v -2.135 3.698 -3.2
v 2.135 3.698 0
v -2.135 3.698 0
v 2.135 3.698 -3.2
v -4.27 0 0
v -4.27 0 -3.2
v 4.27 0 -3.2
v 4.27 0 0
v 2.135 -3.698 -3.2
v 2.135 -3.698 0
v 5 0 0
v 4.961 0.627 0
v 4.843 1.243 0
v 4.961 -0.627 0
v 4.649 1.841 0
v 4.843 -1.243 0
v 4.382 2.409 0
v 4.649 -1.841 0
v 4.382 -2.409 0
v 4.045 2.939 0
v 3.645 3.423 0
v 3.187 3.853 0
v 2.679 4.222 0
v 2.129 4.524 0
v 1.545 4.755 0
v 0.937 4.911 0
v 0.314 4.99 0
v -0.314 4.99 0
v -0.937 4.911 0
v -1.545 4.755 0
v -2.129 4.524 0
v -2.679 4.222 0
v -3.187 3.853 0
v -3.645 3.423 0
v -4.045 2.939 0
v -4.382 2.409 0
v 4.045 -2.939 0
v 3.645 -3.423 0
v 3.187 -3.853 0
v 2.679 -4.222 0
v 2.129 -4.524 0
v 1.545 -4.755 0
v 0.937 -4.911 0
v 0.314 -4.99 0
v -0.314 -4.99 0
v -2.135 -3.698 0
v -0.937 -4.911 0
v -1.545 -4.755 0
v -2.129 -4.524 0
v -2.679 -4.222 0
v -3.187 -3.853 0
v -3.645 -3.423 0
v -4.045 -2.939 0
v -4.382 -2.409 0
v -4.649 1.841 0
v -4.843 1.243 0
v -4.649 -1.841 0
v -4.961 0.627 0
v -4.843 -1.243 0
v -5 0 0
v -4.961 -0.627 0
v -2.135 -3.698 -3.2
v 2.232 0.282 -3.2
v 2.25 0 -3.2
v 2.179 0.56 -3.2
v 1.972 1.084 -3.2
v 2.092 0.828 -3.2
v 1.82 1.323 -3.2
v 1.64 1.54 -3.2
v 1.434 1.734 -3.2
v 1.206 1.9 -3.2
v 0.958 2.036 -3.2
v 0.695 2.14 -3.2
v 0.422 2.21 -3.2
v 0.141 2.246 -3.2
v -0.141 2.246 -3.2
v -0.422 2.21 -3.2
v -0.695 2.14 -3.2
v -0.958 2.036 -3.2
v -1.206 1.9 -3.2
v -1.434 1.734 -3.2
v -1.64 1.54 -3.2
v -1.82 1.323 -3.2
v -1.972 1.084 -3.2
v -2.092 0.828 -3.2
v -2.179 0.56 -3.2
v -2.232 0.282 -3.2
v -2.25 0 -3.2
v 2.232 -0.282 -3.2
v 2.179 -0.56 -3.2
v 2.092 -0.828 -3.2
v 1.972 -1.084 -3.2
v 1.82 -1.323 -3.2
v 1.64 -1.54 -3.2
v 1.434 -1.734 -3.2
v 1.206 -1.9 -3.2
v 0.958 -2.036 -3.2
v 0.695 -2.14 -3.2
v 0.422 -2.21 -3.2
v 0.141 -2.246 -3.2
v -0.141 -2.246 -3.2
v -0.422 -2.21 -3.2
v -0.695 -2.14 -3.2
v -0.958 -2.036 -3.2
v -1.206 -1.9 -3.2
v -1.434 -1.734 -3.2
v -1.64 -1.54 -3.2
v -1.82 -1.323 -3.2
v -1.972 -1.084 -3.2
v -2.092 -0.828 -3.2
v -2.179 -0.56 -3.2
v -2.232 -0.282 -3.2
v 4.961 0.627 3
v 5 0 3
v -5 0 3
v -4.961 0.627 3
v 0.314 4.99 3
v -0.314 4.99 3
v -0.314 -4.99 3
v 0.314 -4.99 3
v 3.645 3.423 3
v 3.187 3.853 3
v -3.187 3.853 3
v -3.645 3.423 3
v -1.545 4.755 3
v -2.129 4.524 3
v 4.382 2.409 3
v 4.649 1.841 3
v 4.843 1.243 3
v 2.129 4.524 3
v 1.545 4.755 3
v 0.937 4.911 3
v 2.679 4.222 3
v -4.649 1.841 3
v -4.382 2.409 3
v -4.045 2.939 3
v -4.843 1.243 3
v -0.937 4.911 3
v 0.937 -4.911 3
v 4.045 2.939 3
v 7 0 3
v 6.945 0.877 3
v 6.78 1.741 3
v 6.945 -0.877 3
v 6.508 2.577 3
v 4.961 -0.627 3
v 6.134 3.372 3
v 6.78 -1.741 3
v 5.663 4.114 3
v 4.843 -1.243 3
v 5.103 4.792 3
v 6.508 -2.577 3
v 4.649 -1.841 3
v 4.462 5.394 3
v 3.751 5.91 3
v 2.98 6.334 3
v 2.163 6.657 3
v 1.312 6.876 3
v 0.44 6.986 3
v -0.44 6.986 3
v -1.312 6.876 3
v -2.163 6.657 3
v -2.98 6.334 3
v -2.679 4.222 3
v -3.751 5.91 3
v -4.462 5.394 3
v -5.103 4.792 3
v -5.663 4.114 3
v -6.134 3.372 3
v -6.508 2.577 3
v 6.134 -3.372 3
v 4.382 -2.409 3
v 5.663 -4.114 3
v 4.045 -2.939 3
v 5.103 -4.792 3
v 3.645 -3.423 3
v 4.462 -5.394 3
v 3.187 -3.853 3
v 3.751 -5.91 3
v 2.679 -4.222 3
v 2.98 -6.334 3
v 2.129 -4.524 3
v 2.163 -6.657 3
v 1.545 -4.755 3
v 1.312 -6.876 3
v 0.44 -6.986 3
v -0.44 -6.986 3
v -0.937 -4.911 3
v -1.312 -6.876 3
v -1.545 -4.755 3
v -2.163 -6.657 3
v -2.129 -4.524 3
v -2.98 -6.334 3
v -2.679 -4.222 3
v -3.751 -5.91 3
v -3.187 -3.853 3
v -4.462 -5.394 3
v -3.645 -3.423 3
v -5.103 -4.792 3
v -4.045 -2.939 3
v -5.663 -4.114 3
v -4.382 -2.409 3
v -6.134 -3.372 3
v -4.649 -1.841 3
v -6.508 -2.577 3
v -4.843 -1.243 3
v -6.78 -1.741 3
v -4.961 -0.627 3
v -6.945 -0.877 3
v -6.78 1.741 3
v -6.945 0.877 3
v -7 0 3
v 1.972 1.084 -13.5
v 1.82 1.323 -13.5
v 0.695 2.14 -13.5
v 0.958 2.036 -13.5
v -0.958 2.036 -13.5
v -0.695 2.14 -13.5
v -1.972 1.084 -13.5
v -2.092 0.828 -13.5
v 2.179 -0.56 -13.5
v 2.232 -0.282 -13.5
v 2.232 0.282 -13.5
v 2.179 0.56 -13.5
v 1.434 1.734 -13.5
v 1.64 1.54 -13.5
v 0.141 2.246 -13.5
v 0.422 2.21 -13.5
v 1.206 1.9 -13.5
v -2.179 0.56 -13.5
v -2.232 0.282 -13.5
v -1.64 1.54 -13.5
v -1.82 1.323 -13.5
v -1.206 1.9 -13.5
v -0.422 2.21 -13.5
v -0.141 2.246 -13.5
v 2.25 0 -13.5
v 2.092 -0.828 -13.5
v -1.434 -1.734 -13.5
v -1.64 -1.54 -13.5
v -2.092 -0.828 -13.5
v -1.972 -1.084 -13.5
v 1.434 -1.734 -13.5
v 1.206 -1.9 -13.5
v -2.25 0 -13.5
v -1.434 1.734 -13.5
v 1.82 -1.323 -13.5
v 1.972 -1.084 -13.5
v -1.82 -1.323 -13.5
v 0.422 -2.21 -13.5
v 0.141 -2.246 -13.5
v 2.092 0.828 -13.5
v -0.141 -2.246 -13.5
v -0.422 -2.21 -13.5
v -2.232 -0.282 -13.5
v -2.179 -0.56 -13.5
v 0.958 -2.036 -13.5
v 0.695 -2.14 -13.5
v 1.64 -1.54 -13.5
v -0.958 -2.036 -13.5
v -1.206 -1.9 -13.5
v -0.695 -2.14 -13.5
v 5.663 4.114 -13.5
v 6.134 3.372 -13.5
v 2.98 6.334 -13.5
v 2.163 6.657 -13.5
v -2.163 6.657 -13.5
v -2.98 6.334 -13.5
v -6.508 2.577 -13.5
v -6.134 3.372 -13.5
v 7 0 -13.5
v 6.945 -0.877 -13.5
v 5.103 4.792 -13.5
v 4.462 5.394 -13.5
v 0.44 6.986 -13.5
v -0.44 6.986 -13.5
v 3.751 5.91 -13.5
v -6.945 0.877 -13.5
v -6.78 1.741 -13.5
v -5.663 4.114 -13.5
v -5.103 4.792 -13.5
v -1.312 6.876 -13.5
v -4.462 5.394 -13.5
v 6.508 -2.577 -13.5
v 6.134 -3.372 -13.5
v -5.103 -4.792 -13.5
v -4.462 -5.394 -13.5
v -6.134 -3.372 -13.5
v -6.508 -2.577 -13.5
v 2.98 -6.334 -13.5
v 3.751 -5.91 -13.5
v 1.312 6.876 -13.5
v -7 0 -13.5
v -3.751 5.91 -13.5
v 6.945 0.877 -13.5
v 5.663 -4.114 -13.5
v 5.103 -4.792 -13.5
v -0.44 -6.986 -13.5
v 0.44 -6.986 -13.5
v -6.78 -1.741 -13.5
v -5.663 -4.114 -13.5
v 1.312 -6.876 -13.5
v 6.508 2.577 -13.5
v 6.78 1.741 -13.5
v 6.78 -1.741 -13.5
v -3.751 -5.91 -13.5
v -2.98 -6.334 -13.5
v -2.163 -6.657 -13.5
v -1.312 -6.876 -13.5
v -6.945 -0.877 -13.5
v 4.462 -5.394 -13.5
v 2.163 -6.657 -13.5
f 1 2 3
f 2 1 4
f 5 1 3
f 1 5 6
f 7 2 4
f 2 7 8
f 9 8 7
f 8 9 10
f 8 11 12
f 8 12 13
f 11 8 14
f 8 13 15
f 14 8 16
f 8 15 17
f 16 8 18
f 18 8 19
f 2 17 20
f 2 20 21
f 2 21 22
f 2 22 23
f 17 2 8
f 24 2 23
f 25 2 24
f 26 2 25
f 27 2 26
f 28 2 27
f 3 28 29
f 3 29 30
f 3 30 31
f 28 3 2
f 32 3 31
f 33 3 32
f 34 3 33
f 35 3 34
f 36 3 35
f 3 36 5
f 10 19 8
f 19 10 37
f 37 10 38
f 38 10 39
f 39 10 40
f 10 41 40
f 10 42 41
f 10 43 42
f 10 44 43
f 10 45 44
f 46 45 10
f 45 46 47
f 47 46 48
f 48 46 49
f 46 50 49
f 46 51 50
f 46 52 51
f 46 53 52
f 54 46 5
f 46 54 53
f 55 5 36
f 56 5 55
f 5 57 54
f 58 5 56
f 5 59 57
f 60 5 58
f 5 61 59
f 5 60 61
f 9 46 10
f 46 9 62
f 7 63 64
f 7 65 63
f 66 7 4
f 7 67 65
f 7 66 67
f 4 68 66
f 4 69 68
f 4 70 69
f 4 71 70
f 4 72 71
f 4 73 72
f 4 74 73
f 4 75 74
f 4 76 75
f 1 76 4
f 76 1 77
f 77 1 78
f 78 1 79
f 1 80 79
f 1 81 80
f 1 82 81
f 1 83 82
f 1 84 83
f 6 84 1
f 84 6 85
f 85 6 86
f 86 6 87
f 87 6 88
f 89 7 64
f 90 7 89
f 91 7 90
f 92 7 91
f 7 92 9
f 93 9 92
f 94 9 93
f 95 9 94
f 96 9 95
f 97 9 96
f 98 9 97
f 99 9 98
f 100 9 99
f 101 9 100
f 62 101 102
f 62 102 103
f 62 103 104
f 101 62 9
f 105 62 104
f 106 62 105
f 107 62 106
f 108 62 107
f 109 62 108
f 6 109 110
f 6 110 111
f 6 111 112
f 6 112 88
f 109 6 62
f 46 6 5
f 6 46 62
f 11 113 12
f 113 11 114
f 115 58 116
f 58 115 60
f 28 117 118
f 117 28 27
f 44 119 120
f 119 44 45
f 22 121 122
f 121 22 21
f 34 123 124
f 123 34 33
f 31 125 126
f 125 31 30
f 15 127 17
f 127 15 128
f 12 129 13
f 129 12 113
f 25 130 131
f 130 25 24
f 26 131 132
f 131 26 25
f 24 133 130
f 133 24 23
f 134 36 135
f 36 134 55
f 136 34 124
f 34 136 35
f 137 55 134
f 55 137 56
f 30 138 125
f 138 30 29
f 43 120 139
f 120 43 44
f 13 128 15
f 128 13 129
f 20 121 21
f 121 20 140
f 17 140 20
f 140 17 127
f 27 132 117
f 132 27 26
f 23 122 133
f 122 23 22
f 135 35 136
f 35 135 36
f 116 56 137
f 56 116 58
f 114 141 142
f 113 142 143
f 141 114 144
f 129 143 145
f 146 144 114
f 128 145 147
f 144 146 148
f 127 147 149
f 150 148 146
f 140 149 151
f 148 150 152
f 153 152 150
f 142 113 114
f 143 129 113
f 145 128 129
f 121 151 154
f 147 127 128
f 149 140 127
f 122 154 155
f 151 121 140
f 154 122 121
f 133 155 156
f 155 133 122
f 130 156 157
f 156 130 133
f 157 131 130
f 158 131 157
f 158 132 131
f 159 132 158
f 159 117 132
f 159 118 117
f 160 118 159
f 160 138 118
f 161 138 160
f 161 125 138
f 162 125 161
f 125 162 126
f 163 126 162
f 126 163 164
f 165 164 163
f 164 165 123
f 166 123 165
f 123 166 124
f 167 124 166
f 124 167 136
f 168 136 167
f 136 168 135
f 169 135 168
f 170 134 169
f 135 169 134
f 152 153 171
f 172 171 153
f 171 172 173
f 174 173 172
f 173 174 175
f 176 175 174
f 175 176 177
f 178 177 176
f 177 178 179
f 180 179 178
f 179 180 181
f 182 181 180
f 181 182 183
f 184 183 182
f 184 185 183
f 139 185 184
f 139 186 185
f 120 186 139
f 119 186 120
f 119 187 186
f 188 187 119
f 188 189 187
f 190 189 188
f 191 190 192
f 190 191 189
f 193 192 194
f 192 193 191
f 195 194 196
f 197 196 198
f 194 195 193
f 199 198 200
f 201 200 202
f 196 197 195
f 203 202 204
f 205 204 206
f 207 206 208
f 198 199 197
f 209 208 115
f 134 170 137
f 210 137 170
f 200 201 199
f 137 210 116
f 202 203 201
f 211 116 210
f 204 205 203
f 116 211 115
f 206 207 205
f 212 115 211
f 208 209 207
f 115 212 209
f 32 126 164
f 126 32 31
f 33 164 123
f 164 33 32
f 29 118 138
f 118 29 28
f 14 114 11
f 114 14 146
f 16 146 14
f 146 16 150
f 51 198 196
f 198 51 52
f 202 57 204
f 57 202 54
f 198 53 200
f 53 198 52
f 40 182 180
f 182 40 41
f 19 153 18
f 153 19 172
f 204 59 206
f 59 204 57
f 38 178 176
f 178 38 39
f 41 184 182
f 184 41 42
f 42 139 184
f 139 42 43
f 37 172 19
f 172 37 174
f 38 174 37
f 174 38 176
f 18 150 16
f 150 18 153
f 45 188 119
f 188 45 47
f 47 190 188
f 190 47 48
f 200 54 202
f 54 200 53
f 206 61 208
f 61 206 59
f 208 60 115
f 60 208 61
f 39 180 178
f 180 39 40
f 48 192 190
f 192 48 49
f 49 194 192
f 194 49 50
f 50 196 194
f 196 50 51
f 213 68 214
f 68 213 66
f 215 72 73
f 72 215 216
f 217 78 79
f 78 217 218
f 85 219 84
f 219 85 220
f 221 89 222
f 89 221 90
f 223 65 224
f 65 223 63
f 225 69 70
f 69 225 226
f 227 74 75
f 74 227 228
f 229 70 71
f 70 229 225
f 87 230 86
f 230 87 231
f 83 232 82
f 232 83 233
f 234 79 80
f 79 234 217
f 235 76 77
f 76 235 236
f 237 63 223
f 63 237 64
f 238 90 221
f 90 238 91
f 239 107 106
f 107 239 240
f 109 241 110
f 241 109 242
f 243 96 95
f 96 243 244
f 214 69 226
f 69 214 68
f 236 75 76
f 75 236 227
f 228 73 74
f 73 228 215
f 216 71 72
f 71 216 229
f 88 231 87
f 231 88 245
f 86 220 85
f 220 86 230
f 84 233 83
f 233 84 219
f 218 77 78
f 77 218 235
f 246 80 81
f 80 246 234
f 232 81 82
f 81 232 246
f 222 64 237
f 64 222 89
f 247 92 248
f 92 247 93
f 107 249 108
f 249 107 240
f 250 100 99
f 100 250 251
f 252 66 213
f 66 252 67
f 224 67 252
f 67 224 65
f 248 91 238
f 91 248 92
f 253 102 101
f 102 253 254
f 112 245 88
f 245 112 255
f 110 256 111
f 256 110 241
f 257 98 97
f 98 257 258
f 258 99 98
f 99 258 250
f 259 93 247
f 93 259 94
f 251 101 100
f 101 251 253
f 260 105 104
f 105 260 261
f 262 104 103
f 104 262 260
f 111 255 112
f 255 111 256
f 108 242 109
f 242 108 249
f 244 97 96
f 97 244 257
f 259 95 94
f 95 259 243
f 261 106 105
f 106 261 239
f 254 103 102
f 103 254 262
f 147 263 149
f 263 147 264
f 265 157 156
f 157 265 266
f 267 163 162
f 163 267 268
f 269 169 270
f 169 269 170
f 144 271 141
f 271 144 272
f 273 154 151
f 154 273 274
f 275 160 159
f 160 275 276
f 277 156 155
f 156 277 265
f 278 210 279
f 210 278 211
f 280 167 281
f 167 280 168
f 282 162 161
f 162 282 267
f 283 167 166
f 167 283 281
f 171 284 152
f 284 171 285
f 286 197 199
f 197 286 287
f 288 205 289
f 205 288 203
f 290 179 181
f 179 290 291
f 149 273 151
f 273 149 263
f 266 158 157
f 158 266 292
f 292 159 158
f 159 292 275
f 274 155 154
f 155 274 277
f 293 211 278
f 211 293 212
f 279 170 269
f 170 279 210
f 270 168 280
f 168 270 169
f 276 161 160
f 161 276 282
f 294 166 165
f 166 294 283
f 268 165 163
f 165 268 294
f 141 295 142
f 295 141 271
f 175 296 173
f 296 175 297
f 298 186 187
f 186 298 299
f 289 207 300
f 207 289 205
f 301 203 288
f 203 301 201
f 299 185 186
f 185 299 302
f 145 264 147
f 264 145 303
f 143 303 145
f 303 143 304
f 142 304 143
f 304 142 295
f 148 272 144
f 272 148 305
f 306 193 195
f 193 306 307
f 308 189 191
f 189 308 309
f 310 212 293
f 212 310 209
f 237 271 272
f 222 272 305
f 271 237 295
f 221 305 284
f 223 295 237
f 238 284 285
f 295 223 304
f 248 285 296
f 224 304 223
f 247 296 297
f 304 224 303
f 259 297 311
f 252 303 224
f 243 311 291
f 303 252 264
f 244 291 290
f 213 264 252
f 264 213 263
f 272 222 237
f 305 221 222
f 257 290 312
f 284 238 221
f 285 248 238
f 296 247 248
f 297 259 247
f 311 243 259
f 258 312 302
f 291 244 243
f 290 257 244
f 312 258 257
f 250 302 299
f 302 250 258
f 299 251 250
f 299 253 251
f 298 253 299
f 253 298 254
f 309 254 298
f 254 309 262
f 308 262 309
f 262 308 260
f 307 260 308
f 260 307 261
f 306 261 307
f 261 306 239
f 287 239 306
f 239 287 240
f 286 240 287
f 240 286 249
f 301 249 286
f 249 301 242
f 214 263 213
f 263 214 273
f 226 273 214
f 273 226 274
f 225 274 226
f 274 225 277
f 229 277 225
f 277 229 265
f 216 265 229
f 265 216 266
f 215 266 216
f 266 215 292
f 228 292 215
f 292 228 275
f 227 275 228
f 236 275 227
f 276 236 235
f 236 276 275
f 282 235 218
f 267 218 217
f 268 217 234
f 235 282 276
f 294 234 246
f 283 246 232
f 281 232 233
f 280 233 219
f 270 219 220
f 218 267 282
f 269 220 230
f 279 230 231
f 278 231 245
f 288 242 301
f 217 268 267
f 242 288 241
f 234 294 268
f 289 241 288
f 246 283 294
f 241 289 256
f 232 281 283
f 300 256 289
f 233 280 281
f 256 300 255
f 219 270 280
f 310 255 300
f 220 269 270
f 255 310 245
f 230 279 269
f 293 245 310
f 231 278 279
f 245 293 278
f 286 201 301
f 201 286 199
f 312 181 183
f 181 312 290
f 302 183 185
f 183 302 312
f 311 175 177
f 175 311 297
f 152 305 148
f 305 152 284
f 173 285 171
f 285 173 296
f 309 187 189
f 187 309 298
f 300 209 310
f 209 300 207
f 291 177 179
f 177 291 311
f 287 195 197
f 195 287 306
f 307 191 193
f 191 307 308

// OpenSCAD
$fn = 50;


difference() {
	union() {
		translate(v = [0, 0, -13.5000000000]) {
			cylinder(h = 16.5000000000, r = 7.0000000000);
		}
	}
	union() {
		translate(v = [0, 0, 0]) {
			rotate(a = [0, 0, 0]) {
				difference() {
					union() {
						translate(v = [0, 0, -3.2000000000]) {
							linear_extrude(height = 3.2000000000) {
								polygon(points = [[4.2698000000, 0.0000000000], [2.1349000000, 3.6977552691], [-2.1349000000, 3.6977552691], [-4.2698000000, 0.0000000000], [-2.1349000000, -3.6977552691], [2.1349000000, -3.6977552691]]);
							}
						}
					}
					union();
				}
			}
		}
		#cylinder(h = 3, r = 5.0000000000);
		#translate(v = [0, 0, -100.0000000000]) {
			cylinder(h = 200, r = 2.2500000000);
		}
	}
}
